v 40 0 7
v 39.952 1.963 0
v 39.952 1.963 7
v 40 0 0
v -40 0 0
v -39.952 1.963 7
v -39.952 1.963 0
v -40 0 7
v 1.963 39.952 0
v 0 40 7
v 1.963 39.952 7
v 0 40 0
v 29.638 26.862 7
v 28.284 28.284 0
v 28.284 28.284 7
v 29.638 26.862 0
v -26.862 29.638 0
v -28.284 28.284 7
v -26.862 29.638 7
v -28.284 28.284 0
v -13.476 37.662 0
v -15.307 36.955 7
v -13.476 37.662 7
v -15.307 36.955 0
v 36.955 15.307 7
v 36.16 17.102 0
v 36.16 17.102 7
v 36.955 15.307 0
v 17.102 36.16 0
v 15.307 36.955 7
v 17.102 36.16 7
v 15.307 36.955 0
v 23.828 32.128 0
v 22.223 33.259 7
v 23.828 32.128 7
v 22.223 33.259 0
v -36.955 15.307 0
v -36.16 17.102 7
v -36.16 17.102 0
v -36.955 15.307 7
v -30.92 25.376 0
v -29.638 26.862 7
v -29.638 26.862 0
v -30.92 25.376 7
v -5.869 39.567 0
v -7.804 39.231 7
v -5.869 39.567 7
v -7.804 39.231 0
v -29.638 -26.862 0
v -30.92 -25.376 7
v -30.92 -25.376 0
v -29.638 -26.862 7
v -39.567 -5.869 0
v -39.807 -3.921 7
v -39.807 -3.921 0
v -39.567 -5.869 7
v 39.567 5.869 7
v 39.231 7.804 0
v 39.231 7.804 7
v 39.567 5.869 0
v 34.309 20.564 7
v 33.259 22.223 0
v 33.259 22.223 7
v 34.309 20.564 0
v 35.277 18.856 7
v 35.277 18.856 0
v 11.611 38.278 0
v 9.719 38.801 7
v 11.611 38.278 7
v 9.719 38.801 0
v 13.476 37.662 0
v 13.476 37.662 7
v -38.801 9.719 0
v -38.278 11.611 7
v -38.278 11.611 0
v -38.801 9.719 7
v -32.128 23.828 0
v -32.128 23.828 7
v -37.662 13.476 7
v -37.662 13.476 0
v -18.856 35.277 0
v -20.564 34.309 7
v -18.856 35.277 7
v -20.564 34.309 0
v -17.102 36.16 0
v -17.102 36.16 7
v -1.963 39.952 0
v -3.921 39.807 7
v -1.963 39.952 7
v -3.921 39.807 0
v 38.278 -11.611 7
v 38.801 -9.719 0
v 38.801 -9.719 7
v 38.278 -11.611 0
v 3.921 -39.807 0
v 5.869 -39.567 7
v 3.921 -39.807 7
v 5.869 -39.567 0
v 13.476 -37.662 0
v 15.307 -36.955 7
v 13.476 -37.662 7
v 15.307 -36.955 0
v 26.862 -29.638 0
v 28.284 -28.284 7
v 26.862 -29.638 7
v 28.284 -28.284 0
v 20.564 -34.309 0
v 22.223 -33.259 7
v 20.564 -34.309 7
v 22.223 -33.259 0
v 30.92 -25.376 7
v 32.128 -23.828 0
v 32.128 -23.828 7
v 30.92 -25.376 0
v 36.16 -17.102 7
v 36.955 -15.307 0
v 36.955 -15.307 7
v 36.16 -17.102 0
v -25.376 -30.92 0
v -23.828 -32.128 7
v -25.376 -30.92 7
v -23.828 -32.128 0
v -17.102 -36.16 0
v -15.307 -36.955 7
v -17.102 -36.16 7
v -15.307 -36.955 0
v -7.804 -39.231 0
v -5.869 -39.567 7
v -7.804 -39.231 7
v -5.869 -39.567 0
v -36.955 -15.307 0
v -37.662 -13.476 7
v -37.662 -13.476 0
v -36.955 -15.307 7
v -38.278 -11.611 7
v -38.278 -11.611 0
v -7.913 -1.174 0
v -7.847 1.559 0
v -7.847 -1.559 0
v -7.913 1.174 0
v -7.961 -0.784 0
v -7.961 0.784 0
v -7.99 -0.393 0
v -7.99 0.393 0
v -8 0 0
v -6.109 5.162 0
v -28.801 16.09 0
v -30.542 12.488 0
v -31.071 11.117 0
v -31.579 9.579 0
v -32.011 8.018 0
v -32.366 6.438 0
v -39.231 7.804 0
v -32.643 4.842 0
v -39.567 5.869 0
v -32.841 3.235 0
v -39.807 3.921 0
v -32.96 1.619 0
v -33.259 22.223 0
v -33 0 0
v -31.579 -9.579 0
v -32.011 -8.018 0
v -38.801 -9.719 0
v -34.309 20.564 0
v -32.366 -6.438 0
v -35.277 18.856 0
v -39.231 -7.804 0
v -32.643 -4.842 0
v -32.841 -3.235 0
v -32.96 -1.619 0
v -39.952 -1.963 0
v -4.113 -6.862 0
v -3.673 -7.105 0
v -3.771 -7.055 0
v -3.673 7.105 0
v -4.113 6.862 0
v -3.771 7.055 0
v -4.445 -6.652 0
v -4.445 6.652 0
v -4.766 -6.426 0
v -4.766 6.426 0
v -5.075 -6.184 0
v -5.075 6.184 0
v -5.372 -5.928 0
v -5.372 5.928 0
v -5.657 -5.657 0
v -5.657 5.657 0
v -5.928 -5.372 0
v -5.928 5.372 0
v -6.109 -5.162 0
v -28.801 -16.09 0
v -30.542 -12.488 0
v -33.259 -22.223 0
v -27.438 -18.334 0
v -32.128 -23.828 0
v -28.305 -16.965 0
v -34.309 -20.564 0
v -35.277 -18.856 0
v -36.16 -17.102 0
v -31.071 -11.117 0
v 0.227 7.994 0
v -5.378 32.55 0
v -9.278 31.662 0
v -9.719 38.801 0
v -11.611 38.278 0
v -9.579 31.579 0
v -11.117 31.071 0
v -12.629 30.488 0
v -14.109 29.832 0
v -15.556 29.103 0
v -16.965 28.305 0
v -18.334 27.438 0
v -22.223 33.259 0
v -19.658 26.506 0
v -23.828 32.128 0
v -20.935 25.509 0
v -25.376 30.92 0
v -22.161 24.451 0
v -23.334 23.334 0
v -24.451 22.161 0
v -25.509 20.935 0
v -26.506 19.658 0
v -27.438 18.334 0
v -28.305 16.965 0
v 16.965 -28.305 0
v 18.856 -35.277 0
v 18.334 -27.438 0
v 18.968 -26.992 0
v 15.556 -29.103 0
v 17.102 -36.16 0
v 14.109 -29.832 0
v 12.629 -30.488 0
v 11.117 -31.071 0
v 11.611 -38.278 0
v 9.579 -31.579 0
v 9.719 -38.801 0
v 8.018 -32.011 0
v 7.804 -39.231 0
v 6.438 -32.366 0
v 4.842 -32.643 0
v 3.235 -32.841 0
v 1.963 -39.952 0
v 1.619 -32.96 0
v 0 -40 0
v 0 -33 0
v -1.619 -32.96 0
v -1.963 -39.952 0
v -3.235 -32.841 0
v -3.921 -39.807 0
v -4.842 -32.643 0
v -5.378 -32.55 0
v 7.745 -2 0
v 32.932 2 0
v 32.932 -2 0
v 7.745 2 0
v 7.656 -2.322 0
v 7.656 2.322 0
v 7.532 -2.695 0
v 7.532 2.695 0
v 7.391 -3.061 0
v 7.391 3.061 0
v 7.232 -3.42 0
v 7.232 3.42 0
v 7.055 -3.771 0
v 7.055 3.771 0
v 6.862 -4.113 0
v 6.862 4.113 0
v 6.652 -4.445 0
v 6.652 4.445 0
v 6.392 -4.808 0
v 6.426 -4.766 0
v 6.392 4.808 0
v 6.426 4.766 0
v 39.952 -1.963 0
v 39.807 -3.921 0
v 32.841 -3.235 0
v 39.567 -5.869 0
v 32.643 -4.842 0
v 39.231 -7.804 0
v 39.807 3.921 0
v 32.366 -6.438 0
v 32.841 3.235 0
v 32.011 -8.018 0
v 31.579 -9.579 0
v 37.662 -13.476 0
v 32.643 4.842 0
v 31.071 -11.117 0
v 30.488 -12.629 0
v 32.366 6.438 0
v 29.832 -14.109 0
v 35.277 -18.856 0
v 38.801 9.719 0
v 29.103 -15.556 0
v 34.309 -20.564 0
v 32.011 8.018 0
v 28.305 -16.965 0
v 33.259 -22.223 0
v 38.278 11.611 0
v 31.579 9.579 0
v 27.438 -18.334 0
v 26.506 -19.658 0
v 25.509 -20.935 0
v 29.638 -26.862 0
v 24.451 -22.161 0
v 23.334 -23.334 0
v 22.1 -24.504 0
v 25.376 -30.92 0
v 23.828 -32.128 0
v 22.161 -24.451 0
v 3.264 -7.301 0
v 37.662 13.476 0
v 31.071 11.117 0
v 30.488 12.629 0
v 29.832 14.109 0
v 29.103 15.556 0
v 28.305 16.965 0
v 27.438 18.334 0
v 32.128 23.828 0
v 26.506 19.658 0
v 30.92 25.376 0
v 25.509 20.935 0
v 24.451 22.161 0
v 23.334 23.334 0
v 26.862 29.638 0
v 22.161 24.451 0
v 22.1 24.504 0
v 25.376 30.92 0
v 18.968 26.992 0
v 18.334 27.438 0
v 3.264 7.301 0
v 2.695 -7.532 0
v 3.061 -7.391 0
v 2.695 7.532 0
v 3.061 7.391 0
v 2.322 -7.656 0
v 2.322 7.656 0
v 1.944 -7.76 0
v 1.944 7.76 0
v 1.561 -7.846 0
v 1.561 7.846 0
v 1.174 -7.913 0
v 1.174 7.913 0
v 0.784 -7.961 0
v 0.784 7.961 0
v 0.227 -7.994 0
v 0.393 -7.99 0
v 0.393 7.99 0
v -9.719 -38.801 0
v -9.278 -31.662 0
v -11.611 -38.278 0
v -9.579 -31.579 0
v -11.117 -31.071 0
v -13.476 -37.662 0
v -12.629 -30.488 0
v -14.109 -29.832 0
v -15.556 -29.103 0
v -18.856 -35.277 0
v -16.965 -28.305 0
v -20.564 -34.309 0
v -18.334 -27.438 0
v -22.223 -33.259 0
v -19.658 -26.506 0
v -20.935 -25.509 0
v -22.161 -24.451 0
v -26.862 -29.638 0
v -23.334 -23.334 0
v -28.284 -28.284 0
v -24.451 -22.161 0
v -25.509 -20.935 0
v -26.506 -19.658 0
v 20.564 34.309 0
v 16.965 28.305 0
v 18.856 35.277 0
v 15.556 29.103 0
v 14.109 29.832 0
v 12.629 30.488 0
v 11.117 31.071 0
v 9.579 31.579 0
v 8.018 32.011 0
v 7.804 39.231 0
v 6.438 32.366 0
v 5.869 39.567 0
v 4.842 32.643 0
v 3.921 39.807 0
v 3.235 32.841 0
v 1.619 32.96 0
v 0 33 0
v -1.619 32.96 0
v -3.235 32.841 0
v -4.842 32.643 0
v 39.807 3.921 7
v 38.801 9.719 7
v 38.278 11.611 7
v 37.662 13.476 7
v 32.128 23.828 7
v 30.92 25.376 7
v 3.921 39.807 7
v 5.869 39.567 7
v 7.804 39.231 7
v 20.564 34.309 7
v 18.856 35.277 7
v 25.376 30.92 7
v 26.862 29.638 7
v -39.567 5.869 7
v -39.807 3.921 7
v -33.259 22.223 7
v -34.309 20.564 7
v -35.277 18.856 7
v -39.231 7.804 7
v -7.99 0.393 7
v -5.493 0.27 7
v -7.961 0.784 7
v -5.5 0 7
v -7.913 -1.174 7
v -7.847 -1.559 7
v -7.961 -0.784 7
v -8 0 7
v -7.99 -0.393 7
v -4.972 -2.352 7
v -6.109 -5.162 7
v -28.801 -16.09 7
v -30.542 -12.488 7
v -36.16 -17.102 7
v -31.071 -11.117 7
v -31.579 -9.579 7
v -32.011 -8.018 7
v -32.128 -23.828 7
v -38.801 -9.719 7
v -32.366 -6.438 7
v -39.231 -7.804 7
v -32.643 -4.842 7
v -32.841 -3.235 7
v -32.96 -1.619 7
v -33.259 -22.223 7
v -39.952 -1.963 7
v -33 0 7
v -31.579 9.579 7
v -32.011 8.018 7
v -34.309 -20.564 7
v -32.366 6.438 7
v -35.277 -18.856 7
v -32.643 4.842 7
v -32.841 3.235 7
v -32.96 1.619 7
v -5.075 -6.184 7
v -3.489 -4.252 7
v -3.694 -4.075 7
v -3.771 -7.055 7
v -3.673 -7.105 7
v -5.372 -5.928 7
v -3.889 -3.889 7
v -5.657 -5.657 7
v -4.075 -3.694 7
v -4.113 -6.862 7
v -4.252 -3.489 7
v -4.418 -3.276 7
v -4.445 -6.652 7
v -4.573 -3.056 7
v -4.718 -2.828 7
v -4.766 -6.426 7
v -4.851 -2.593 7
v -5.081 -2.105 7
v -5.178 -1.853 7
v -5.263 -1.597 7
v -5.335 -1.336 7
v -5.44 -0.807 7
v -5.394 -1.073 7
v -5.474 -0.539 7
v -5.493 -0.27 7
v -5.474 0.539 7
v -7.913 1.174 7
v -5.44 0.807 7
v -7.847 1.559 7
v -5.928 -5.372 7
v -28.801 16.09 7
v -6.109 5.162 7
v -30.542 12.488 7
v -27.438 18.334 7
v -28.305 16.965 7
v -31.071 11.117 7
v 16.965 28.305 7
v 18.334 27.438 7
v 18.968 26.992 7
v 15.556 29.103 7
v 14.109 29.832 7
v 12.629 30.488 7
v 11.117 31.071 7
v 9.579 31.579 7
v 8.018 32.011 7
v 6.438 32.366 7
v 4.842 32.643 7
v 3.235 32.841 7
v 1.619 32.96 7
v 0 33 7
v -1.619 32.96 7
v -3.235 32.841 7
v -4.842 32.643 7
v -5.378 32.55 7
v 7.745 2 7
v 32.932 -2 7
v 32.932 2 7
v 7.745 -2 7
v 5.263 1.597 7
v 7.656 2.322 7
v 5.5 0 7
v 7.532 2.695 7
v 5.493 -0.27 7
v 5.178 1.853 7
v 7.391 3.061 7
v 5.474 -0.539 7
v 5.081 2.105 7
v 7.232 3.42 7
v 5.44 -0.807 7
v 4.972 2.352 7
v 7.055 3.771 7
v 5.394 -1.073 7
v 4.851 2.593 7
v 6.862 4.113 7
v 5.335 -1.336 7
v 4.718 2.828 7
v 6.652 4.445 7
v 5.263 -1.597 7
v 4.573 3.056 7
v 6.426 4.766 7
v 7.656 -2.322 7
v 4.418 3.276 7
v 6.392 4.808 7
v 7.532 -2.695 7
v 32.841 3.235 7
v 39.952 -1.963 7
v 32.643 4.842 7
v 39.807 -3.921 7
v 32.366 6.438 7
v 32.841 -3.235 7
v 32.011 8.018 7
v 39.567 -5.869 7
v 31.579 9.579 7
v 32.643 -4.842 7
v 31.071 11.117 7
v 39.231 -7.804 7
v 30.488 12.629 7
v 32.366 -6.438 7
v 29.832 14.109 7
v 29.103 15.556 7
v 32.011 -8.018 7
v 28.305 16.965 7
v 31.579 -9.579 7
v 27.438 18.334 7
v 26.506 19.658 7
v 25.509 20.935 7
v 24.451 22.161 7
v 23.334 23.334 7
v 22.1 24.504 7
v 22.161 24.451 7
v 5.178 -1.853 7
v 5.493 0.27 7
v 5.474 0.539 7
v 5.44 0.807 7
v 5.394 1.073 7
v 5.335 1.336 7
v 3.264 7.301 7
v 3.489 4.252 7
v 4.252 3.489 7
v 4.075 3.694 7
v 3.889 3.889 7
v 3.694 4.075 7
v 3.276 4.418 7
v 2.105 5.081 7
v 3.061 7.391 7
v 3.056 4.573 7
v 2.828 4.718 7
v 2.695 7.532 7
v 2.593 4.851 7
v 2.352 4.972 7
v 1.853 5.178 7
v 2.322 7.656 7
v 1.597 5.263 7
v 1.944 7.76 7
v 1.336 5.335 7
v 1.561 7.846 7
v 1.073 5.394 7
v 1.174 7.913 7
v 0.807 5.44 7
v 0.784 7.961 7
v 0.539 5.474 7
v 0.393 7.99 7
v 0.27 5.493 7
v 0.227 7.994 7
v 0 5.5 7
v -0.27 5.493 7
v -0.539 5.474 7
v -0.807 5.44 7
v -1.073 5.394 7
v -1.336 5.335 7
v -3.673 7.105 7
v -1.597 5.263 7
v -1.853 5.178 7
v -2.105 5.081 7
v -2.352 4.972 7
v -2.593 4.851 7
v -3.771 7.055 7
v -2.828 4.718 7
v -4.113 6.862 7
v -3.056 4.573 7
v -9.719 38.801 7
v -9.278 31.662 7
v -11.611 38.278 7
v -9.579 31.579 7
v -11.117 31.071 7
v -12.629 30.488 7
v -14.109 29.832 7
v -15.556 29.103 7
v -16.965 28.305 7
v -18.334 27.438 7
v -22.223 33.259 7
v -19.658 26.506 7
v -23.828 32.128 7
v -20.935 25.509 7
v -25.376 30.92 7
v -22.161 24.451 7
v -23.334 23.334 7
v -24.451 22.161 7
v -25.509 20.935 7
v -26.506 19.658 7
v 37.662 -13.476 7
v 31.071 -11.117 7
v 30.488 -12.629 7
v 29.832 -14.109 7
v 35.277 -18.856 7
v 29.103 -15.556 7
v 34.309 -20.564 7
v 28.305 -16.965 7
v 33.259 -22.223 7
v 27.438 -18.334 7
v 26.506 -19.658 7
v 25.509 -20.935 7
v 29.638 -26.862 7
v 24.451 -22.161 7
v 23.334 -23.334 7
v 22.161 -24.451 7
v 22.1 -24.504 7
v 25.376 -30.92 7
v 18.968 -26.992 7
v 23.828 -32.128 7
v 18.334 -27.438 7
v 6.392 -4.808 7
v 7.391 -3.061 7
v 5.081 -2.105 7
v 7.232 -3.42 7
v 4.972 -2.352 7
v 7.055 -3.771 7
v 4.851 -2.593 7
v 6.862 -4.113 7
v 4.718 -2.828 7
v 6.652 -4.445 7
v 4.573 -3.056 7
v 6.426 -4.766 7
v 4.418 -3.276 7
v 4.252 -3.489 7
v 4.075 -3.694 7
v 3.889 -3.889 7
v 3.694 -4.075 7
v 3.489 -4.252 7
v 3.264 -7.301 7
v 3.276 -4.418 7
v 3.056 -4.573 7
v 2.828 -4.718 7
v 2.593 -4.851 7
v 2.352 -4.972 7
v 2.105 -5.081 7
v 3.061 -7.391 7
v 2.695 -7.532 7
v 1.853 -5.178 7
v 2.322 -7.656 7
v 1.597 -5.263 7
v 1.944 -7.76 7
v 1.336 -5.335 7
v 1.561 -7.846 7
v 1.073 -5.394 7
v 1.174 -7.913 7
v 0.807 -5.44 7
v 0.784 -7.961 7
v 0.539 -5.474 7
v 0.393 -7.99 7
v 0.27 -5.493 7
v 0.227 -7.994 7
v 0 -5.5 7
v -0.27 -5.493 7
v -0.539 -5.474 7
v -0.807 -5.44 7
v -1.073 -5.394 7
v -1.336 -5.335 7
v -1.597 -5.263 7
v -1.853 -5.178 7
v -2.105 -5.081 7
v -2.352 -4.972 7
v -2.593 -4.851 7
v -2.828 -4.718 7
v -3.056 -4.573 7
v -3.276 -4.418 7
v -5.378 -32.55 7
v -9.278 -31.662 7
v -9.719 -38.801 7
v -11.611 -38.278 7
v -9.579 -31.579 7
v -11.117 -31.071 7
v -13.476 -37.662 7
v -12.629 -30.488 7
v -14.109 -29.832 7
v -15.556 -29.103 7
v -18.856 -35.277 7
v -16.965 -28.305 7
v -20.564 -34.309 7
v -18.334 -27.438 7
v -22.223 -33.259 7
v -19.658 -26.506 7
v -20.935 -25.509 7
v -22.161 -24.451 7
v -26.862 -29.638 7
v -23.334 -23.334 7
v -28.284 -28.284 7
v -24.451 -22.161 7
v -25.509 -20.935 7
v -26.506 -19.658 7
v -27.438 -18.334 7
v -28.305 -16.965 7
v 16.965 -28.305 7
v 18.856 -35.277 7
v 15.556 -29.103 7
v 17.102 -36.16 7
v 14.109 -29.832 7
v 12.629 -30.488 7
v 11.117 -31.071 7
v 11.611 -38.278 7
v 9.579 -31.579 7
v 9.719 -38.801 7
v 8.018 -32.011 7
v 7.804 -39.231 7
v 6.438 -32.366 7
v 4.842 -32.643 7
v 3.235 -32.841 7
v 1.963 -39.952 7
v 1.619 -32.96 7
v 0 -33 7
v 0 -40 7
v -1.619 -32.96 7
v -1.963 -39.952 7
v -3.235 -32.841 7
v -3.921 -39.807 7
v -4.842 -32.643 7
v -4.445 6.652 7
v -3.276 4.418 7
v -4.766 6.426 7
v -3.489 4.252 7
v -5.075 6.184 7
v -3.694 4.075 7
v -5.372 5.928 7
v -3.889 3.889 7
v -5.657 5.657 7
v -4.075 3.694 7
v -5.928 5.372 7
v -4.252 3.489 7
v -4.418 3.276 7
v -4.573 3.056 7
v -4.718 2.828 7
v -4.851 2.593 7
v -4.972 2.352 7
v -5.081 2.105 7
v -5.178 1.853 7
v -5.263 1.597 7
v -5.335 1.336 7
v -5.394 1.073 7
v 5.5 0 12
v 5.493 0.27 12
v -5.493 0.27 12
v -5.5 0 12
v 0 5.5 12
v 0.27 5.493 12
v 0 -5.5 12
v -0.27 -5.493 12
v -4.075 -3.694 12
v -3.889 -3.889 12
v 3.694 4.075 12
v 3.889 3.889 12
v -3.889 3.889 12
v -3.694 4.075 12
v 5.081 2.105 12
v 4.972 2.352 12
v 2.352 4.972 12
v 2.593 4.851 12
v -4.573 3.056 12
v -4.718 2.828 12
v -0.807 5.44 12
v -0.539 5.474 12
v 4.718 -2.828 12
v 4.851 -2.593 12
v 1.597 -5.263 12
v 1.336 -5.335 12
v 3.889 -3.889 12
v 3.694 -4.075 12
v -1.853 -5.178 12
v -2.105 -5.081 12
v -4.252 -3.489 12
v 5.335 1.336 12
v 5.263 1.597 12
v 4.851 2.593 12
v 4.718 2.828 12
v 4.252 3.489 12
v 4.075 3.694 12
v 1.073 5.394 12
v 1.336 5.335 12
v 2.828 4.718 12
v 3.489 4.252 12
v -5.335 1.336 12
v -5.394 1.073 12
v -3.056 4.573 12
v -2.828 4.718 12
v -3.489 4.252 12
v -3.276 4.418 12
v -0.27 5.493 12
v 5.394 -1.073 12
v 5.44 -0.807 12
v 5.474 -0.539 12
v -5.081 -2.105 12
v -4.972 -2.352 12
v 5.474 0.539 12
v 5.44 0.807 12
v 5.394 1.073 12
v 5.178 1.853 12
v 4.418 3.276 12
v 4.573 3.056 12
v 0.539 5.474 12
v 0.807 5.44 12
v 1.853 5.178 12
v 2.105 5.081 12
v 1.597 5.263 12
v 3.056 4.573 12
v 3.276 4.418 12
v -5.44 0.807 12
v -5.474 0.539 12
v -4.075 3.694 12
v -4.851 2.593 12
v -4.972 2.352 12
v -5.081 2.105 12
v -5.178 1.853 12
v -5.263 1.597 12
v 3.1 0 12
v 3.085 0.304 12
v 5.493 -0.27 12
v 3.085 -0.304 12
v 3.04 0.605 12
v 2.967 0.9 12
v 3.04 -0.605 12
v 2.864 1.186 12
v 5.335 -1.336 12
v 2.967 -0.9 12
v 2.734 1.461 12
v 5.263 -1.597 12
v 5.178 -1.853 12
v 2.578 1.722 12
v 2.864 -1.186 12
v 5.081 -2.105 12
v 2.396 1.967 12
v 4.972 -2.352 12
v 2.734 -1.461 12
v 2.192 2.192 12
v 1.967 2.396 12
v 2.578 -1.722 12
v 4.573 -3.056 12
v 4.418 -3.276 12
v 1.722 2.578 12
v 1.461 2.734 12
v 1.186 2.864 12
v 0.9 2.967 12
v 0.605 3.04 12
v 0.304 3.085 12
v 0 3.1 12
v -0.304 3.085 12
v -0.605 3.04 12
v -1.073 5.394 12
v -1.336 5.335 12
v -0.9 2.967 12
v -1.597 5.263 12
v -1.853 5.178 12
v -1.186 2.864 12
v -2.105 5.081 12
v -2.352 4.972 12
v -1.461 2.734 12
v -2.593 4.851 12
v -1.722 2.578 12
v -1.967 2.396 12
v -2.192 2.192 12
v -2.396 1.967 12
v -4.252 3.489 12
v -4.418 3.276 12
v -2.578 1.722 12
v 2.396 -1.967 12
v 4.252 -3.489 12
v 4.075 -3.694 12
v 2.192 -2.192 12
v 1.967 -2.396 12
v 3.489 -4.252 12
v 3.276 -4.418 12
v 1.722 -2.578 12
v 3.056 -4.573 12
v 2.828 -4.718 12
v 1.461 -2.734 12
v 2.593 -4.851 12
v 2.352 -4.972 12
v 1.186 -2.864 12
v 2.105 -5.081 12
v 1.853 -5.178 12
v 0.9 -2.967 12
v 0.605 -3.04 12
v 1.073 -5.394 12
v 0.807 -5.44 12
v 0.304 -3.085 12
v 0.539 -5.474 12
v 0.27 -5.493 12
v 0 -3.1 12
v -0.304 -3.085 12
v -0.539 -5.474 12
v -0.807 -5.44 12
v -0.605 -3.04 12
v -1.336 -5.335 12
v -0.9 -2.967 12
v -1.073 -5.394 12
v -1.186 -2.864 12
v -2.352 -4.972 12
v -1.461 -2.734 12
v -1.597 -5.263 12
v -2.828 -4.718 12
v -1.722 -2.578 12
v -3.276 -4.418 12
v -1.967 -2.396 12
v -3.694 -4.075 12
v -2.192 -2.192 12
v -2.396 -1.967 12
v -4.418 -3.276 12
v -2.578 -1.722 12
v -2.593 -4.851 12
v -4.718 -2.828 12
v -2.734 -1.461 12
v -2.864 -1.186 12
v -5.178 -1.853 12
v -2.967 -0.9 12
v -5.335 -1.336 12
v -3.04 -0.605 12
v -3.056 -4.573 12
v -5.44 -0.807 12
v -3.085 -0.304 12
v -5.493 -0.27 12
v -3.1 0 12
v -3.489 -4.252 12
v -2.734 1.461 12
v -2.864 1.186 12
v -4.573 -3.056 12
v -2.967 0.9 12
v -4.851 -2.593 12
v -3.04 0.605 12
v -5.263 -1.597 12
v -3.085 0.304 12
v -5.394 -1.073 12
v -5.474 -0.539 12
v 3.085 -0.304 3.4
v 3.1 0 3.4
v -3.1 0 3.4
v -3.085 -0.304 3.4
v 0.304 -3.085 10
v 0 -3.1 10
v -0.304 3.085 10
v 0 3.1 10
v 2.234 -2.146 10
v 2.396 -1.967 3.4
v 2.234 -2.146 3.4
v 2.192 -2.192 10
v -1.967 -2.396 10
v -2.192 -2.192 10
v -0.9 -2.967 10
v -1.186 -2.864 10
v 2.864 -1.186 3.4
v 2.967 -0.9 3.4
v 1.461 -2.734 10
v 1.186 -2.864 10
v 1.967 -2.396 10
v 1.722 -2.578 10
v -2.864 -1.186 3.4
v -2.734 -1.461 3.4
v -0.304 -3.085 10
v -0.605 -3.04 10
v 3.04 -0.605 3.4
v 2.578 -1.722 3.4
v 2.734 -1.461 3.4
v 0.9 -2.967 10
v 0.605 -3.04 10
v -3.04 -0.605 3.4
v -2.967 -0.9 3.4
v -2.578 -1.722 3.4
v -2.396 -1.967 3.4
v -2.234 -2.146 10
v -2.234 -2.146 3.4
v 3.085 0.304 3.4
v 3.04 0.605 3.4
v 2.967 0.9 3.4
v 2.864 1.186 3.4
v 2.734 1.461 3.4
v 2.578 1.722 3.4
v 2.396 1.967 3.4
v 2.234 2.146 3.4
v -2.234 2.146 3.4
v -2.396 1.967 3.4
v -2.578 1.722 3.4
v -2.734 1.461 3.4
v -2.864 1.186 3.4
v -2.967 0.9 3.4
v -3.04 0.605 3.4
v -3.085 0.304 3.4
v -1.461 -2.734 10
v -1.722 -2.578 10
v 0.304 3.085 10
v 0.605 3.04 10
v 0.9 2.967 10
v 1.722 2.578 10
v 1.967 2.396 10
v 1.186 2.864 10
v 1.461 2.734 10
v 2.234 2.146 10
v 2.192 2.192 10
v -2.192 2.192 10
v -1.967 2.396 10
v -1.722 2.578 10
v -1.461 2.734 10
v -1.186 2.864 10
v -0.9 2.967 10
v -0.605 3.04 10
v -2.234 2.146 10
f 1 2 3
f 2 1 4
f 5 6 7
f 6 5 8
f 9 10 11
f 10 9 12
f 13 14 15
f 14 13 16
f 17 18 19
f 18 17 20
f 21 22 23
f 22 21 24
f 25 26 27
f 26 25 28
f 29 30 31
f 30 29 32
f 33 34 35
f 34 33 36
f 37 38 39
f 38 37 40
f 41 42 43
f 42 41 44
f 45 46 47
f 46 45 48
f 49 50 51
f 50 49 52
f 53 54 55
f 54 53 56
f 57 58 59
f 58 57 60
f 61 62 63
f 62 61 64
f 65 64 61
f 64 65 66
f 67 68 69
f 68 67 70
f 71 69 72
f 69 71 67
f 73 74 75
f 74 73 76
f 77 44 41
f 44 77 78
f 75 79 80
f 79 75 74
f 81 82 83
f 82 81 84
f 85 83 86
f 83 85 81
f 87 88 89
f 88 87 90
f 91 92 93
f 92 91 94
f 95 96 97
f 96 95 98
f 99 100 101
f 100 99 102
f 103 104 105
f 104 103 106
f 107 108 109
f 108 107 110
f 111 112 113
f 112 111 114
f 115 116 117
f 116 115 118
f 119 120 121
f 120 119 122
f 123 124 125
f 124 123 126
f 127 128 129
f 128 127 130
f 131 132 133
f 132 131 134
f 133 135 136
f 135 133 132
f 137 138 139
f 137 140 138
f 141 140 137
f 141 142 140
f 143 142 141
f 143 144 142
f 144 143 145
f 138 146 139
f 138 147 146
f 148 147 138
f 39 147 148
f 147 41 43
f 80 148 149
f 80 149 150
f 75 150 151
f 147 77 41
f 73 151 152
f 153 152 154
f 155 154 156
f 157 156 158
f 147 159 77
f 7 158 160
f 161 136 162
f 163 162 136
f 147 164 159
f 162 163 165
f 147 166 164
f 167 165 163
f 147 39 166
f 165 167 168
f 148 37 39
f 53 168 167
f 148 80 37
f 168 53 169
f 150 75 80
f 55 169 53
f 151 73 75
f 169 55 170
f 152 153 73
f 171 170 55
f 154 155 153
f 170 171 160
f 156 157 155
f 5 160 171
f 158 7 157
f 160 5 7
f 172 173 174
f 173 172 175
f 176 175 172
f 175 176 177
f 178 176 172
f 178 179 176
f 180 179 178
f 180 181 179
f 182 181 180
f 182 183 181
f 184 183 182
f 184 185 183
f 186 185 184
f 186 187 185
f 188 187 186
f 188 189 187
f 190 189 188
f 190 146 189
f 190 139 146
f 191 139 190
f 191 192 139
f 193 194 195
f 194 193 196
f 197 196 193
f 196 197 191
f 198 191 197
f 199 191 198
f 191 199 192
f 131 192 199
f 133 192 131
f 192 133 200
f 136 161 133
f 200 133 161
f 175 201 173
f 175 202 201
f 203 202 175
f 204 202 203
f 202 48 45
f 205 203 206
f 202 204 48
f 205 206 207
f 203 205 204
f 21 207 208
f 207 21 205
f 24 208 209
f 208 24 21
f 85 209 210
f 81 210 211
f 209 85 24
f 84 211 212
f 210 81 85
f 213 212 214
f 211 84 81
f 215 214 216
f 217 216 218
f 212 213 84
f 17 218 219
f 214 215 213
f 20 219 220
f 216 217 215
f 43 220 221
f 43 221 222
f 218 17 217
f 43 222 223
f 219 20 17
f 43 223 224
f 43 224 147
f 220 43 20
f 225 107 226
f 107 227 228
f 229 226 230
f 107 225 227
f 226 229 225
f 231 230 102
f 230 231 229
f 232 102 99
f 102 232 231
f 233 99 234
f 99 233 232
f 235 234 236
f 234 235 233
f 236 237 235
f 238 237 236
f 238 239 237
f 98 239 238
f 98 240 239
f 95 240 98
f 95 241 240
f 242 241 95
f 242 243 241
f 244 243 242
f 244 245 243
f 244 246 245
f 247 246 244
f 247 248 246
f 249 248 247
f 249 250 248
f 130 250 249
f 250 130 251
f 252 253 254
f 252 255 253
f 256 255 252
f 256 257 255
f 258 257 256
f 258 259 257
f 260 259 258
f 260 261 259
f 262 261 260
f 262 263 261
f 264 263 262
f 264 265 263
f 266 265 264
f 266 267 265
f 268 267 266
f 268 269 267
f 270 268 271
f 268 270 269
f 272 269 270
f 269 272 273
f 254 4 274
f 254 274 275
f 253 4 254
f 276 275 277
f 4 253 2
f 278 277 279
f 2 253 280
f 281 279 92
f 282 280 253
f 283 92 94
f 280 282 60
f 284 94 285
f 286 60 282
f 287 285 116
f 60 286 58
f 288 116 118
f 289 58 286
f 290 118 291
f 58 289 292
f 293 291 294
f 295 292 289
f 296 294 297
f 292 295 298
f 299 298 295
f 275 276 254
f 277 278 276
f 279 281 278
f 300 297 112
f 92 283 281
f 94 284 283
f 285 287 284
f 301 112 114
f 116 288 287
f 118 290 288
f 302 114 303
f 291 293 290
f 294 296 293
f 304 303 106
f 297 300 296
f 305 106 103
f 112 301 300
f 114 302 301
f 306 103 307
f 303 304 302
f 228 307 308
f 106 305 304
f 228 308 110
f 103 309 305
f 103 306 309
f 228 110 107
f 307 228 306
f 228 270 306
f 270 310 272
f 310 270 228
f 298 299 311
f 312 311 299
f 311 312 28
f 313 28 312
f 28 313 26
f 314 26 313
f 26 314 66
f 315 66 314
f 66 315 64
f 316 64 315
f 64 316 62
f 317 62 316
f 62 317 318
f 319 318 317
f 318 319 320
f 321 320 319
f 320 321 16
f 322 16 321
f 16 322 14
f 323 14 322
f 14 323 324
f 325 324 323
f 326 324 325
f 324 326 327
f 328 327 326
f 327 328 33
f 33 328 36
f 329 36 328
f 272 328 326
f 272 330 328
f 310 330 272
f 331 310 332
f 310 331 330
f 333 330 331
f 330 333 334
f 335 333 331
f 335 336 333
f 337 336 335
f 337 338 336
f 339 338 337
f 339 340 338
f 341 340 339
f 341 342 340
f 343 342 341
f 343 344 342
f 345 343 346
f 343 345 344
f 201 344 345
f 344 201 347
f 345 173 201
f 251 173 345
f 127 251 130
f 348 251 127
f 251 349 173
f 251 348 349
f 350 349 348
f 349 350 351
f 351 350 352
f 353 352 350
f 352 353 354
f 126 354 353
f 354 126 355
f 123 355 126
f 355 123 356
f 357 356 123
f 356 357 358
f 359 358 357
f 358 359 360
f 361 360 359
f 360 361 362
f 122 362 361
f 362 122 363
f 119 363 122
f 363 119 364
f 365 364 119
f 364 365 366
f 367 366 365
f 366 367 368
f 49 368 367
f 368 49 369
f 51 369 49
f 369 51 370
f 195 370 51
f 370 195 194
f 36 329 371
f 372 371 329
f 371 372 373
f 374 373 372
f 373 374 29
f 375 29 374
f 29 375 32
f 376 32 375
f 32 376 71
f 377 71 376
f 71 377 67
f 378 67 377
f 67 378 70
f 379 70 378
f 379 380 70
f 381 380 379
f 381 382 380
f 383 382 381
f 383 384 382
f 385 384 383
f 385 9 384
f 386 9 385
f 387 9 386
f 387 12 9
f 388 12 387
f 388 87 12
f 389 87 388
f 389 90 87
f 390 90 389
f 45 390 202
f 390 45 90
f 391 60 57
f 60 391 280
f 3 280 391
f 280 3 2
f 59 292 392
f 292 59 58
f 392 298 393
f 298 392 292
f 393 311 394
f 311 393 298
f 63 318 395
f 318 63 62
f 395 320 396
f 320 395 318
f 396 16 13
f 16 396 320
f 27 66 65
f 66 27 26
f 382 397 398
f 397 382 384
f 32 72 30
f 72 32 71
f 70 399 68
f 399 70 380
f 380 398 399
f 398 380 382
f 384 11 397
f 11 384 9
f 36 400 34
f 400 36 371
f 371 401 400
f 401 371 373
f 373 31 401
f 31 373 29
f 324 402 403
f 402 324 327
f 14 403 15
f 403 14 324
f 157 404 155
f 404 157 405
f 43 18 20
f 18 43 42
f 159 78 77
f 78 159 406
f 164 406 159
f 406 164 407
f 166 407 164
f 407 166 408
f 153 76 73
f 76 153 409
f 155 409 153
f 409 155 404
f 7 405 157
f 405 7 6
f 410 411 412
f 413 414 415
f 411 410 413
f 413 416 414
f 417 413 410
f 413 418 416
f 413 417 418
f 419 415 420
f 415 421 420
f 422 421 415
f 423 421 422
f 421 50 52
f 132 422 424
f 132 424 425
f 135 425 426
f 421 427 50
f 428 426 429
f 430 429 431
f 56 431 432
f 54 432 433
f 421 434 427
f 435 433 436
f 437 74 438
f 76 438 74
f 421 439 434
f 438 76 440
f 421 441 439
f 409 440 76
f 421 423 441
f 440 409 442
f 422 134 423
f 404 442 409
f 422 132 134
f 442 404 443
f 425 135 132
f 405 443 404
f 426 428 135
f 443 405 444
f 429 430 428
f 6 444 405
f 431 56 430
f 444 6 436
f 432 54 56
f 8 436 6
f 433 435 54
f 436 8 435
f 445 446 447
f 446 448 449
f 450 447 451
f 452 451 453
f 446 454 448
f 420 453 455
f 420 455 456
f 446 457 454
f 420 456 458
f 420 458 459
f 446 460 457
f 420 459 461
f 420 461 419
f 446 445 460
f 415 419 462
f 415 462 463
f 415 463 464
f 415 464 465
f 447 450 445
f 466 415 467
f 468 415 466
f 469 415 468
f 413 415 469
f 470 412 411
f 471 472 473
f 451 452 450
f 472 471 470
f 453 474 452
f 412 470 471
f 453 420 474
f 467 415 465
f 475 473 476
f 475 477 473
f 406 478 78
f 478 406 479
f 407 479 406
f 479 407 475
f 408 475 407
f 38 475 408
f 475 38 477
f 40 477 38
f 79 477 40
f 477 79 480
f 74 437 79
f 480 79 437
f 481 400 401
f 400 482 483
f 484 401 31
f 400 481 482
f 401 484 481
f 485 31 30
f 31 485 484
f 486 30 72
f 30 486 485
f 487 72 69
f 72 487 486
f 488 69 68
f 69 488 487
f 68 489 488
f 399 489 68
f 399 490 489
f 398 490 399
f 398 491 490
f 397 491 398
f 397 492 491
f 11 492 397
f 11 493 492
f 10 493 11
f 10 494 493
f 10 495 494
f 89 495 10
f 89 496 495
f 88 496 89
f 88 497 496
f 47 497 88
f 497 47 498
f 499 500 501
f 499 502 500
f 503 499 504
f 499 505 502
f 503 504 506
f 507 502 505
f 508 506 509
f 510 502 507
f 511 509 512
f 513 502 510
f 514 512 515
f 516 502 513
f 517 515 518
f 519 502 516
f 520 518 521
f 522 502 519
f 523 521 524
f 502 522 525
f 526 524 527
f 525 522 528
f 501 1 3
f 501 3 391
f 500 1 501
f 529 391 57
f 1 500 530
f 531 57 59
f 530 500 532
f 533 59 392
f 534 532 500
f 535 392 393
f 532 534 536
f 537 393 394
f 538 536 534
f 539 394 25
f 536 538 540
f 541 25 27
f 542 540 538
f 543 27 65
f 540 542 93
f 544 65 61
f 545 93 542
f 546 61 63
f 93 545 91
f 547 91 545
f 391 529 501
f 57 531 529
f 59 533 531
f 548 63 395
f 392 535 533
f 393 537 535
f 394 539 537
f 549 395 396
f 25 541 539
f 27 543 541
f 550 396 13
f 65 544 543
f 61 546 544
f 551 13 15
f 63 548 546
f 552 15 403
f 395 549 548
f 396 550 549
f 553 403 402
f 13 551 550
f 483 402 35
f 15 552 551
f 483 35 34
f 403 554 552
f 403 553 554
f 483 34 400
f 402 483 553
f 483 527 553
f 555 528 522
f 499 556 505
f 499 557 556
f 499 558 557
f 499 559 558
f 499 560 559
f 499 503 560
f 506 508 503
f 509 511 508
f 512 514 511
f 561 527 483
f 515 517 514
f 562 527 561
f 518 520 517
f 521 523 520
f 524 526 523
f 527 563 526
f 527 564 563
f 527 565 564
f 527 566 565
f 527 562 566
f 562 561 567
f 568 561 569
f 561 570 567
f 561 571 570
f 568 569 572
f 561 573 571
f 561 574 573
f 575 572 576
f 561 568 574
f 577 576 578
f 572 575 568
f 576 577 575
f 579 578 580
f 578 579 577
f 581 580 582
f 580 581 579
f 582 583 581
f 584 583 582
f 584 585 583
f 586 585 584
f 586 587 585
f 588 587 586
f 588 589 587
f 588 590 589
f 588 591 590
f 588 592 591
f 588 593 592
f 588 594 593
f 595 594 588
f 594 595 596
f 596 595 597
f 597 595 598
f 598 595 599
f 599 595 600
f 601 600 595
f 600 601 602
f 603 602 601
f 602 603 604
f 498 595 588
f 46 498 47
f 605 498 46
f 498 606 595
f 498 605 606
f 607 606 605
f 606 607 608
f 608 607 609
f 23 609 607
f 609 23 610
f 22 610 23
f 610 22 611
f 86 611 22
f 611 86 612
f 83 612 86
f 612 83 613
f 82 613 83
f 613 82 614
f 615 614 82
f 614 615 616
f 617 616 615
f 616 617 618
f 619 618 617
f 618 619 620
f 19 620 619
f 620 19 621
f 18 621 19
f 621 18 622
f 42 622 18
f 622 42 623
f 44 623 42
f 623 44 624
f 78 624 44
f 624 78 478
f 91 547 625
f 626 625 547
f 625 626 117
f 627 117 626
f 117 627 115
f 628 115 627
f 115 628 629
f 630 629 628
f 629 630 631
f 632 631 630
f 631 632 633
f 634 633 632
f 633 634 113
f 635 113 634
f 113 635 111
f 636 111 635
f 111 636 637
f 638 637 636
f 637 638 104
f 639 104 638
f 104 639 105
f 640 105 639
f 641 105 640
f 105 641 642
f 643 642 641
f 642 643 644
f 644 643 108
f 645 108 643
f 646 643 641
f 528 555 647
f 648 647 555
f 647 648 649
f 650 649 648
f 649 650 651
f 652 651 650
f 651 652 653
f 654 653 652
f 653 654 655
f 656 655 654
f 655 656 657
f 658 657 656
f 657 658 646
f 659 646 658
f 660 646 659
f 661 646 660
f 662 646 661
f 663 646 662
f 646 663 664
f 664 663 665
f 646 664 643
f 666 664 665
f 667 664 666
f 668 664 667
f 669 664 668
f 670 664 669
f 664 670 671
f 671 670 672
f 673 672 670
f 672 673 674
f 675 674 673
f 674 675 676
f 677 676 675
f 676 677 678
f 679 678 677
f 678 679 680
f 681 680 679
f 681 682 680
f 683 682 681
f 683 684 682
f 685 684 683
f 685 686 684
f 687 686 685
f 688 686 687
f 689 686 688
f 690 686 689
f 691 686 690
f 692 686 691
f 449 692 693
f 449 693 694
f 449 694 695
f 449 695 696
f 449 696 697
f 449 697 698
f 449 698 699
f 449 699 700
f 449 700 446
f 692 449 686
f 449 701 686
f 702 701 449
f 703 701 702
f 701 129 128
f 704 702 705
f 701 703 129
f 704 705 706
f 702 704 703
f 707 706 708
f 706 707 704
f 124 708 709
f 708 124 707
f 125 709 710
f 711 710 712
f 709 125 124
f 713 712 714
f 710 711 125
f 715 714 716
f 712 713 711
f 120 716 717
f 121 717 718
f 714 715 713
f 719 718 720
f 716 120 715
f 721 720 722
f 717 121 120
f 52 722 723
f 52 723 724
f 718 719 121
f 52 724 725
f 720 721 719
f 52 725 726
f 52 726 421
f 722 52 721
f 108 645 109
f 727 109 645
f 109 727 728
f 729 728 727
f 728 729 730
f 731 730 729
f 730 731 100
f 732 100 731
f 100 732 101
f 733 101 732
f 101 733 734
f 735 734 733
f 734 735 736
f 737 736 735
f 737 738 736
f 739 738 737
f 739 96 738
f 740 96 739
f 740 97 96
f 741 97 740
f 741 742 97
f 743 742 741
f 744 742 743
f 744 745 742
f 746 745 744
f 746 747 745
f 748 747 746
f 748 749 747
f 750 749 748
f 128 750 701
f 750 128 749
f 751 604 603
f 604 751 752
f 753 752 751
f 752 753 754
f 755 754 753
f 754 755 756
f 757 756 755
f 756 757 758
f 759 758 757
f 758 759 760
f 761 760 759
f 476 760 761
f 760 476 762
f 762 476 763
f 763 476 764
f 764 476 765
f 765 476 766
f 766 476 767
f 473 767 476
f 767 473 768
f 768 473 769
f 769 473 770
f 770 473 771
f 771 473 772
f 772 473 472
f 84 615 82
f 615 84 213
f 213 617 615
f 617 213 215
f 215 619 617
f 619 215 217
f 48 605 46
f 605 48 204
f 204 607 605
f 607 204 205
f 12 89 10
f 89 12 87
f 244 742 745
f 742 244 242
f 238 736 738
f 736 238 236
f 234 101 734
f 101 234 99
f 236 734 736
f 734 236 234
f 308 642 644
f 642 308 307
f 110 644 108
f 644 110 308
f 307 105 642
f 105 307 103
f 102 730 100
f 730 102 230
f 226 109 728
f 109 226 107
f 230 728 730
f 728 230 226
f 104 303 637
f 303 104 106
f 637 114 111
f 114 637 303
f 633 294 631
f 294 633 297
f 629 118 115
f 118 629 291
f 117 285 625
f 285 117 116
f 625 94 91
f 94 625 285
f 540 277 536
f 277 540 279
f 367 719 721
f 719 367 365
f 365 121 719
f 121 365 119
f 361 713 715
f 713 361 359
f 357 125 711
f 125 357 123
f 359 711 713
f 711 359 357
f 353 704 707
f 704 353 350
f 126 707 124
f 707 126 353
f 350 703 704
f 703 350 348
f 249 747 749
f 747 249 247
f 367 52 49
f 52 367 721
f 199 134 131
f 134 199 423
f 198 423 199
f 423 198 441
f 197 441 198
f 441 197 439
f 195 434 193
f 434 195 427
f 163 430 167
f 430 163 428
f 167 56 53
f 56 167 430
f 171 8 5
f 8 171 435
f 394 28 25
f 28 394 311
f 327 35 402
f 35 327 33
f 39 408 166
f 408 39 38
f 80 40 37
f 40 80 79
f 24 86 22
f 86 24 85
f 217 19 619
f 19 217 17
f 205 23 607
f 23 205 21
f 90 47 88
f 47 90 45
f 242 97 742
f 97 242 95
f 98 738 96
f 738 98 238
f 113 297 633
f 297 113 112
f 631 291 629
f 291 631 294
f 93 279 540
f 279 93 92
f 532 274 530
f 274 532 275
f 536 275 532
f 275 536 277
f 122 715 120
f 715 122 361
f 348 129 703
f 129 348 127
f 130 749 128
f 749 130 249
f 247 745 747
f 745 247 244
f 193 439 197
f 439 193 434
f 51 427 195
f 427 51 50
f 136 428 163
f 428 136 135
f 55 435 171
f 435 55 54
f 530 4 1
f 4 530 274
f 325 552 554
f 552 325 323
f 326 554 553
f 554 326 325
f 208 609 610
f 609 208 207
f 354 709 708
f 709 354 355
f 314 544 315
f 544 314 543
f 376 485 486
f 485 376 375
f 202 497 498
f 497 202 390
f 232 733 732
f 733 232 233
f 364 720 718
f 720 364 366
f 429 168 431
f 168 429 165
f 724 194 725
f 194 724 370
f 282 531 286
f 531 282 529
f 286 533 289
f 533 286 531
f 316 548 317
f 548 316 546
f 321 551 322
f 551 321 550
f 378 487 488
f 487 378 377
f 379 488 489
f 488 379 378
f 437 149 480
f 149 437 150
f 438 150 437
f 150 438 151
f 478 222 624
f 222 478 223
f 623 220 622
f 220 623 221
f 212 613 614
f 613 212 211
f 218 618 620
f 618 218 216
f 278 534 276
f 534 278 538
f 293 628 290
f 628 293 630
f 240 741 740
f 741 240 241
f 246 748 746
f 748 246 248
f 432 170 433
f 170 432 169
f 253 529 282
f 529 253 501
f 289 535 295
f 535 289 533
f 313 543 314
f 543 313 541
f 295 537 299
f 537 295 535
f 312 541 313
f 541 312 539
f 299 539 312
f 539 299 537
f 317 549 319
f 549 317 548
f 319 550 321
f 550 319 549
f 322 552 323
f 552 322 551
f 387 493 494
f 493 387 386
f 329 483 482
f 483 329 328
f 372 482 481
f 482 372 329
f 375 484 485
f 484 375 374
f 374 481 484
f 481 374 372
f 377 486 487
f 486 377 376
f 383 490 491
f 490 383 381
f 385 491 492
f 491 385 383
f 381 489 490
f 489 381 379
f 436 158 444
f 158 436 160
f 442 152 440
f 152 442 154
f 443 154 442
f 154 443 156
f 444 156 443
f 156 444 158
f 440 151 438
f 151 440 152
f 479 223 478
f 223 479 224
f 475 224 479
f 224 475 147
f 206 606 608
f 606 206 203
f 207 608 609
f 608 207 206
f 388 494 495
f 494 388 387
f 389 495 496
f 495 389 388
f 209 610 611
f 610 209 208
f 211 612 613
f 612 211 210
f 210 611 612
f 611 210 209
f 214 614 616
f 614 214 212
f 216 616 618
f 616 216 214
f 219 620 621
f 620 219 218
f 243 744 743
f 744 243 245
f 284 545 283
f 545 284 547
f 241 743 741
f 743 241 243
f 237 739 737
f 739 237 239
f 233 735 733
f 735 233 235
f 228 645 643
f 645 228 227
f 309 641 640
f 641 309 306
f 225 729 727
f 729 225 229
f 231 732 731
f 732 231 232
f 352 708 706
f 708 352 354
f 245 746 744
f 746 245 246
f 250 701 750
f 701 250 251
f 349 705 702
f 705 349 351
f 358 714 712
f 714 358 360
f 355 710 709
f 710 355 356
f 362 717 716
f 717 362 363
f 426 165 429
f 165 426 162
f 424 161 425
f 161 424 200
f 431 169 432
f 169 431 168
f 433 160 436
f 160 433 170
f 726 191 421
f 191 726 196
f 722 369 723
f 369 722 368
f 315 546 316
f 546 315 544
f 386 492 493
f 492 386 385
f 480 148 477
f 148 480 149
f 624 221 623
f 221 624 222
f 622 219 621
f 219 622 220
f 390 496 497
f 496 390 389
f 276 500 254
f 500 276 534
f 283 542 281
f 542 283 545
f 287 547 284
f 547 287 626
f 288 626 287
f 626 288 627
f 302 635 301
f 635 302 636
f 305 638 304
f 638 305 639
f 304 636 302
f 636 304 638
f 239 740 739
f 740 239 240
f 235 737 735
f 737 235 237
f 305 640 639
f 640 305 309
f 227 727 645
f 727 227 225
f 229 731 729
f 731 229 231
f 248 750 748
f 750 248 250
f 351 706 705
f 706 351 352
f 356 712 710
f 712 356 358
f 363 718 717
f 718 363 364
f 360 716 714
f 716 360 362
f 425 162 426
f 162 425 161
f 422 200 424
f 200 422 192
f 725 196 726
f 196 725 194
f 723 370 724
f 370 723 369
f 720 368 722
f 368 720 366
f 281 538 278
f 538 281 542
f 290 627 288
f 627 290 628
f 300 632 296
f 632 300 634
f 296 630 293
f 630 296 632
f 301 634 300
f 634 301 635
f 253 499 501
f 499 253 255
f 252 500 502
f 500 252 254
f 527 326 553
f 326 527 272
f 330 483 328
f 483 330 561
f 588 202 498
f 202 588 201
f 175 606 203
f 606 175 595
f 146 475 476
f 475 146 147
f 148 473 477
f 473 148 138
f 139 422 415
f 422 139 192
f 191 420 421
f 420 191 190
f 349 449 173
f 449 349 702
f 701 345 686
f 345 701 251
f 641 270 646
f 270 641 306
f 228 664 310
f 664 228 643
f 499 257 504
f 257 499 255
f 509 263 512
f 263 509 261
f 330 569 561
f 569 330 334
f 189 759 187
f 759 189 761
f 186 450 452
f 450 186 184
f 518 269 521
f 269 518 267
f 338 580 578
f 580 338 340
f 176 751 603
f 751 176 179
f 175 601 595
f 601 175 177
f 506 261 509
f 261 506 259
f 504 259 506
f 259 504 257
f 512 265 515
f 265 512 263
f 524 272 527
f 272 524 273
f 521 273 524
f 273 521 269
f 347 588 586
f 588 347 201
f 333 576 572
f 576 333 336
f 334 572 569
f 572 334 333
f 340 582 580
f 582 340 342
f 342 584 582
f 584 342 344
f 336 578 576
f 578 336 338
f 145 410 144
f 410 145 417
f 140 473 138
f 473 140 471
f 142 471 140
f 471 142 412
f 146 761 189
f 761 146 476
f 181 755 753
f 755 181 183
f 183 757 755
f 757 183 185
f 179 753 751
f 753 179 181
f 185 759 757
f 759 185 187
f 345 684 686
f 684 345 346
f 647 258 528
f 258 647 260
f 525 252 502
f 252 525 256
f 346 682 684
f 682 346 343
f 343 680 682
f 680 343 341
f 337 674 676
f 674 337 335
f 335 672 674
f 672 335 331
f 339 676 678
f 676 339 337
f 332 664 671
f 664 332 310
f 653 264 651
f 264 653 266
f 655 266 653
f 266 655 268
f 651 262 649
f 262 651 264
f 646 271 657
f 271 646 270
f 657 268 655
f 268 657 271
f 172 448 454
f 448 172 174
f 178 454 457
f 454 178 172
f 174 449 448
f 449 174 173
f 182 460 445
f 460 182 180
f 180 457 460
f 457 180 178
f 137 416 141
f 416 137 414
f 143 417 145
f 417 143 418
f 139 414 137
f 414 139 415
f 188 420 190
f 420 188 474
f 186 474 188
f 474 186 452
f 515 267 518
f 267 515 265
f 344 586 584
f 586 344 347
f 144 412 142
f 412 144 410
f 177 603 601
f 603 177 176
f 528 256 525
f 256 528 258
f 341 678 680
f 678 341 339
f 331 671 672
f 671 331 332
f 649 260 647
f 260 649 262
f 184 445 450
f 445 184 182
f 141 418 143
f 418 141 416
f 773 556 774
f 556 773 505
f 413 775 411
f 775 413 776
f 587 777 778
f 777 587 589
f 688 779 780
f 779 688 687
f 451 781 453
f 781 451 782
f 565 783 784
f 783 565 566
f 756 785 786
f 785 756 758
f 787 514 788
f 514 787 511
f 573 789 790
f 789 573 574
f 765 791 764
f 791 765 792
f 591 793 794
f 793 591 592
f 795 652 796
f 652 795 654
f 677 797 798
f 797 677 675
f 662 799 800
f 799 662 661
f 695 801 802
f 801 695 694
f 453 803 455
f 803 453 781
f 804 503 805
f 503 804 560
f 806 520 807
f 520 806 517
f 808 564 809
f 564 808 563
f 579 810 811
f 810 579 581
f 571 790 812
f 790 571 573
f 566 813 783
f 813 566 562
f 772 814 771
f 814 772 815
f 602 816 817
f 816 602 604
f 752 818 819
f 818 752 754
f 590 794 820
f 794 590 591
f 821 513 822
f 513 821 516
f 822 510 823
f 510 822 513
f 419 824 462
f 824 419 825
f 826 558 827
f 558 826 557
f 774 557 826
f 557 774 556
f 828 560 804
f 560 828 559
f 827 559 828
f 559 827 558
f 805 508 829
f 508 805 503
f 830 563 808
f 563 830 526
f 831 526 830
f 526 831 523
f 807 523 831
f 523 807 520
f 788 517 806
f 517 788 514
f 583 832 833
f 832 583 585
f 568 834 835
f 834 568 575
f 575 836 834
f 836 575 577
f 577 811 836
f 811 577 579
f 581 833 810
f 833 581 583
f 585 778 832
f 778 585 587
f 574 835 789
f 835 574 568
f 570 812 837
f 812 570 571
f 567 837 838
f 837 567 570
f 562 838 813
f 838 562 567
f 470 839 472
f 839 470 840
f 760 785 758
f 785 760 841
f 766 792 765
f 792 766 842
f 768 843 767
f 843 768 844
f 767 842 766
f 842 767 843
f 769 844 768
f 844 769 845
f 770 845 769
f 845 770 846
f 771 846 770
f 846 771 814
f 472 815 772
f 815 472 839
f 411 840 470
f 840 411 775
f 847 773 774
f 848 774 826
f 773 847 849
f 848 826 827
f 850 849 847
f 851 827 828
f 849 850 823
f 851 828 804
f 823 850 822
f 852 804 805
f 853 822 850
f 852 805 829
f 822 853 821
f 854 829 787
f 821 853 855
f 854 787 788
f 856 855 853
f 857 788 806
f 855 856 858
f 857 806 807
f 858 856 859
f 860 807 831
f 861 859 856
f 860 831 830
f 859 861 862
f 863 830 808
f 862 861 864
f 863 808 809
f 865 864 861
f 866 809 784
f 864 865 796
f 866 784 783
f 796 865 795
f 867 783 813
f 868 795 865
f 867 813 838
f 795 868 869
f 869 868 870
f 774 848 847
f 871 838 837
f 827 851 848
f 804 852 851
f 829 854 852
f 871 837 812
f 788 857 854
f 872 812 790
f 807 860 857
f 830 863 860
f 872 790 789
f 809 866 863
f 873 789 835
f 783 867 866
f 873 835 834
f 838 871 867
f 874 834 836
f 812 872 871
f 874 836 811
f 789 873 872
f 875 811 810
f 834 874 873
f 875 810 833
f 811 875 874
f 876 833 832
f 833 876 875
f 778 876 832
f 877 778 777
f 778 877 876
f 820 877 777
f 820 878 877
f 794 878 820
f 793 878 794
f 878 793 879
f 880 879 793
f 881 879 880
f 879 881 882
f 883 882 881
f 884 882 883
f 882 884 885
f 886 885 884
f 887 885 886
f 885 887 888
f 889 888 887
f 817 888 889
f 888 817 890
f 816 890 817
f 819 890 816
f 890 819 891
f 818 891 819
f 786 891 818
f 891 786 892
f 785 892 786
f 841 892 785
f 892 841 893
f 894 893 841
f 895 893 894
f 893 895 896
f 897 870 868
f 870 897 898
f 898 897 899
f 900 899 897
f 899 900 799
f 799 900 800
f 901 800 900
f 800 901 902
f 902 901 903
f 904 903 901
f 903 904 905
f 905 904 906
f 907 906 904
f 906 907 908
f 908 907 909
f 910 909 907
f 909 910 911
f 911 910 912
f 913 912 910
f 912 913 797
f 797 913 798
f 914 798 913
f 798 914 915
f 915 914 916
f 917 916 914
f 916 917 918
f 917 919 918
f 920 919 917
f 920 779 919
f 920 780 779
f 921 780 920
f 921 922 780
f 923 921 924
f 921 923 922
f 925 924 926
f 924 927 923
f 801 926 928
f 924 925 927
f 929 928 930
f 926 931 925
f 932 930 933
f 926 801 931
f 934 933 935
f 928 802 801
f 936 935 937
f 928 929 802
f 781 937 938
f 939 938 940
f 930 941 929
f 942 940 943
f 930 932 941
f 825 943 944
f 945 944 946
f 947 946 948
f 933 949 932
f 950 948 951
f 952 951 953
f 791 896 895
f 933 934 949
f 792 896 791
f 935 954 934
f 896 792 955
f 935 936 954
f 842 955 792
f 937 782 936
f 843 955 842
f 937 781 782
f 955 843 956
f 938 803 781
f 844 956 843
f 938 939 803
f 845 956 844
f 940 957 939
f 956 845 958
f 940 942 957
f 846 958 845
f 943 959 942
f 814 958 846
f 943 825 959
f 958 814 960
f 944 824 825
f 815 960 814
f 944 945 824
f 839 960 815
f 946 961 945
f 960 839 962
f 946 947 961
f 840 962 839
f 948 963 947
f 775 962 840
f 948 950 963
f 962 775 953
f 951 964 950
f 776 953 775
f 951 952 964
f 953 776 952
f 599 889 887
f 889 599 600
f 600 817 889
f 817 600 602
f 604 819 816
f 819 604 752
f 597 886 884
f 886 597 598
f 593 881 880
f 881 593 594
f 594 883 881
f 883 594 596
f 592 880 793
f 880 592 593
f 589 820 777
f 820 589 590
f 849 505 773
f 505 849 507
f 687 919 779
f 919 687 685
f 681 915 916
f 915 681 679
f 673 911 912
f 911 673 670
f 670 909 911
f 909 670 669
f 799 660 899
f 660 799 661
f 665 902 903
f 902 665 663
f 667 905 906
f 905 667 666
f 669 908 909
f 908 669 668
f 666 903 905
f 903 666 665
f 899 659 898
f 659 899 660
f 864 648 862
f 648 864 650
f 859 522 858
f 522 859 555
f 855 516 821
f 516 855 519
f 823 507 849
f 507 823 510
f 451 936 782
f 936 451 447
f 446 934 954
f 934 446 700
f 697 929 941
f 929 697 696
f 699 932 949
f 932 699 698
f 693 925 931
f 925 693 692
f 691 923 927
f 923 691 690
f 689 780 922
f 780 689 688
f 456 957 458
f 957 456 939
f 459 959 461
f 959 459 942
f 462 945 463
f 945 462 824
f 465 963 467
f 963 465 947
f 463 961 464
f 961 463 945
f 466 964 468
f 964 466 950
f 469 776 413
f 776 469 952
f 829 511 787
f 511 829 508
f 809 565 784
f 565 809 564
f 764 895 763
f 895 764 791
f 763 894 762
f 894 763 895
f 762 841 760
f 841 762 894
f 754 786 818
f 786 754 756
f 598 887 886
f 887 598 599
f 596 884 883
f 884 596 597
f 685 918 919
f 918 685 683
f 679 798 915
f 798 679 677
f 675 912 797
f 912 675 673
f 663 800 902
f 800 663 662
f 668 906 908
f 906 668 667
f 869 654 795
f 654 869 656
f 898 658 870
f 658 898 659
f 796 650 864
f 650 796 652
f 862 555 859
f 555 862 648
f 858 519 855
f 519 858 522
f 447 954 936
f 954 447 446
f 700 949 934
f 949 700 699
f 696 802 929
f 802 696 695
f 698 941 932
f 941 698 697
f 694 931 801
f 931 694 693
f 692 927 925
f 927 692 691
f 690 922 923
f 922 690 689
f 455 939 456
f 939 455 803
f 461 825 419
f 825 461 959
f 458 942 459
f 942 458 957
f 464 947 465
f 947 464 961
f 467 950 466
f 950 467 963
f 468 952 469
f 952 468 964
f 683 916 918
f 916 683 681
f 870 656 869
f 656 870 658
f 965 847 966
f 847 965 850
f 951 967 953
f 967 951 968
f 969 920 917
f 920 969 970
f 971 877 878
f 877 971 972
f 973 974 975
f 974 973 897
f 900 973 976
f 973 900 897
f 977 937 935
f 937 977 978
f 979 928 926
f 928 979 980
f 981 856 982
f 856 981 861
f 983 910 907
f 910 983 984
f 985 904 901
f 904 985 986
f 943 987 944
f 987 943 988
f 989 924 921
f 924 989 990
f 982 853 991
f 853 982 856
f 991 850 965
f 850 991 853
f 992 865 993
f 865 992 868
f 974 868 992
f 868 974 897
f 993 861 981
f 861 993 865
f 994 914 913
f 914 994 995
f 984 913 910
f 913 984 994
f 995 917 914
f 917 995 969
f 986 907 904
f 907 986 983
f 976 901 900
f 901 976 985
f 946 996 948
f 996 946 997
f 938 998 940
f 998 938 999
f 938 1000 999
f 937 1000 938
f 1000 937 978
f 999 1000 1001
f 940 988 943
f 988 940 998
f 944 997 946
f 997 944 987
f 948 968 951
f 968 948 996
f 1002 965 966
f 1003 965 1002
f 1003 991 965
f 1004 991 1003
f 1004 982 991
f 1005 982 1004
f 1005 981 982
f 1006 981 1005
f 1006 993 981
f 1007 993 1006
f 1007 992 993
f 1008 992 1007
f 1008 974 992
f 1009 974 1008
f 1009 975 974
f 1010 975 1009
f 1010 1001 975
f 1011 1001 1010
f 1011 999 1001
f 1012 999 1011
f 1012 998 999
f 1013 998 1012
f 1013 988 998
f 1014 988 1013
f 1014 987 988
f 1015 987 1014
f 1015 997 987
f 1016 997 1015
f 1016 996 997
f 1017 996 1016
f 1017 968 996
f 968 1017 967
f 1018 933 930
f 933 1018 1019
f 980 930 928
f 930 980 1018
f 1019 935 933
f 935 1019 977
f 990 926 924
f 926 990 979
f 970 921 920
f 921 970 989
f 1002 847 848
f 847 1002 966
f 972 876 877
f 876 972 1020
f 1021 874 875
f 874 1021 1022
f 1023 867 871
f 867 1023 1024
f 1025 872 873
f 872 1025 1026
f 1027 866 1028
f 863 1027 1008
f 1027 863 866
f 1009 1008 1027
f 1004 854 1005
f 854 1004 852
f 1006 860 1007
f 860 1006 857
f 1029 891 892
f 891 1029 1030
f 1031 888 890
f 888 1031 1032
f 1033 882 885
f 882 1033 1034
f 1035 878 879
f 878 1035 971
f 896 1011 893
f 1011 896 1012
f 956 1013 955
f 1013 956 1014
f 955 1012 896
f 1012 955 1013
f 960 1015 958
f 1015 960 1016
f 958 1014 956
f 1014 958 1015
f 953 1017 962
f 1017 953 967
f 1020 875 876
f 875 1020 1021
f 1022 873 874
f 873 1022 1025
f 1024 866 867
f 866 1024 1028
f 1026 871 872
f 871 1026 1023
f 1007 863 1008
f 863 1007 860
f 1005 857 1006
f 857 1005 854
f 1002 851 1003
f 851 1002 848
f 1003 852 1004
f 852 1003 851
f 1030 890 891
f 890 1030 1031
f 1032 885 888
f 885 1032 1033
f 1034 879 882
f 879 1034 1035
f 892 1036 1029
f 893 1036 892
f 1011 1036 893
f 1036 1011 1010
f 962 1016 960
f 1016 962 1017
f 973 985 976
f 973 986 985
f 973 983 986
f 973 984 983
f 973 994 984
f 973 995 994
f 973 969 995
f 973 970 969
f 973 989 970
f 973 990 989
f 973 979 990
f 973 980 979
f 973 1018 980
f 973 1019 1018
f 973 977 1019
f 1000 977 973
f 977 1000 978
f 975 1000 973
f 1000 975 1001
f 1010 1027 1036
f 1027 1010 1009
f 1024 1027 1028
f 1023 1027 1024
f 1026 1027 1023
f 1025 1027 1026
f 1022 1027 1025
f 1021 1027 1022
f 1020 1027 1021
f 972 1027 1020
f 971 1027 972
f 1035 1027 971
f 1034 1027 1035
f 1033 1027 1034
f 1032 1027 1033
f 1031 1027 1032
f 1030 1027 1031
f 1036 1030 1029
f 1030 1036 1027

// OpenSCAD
// file: Wheel.scad
$fn = 128;

module wheel(spokeCount = 12) {
    module spoke() {
        translate([0, -2, 0]) cube([38, 4, 7]); 
        }

    union() {
        difference() {
            cylinder(h = 7, r = 40);
            translate([0,0,-1]) cylinder(h = 10, r = 33);
            }

        for (az = [0 : spokeCount])
            rotate([0, 0, az*(360/spokeCount)]) spoke(); 
        
        cylinder(h = 7, r = 8);
        cylinder(h = 12, r = 5.5);
        }
    }

wheel(7);
// file: StepperMotor28BYJ_48.scad
MotorCut_28BYJ_48();
//AxisCut_28BYJ_48();

module MotorCut_28BYJ_48()
{
	union()
	{
		cylinder(d=29.2,h=25,$fn=64);
		translate([0,-10.6,12.5])
		cube([16,16,25], center=true);
		hull()
		{
			translate([17.5,0,0])
			cylinder(d=8, h=25, $fn=64);
			translate([-17.5,0,0])
			cylinder(d=8, h=25, $fn=64);
		}
		translate([17.5,0,-1])
		cylinder(d=3.8,h=50,$fn=64,center=true);
		translate([-17.5,0,-1])
		cylinder(d=3.8,h=50,$fn=64,center=true);
		translate([0,8,-12])
		cylinder(d=12,h=28,$fn=64,center=true);
	}
}

module AxisCut_28BYJ_48()
{
    translate([0,0,-2])
	difference()
	{
		cylinder(d=5.2,h=10.6,$fn=64);
		translate([0,4.8,8])
		cube([10,6,8], center=true);
		translate([0,-4.8,8])
		cube([10,6,8], center=true);
	}
}
// main file
use <StepperMotor28BYJ_48.scad>
use <Wheel.scad>

module wheel28BYJ_48(spokeCount = 12)
{
    difference()
    {
        wheel(spokeCount);
        translate([0,0,12])
            rotate([180,0,0])
                resize([6.2,6.2,0]) AxisCut_28BYJ_48();
    }   
}

wheel28BYJ_48(7);
